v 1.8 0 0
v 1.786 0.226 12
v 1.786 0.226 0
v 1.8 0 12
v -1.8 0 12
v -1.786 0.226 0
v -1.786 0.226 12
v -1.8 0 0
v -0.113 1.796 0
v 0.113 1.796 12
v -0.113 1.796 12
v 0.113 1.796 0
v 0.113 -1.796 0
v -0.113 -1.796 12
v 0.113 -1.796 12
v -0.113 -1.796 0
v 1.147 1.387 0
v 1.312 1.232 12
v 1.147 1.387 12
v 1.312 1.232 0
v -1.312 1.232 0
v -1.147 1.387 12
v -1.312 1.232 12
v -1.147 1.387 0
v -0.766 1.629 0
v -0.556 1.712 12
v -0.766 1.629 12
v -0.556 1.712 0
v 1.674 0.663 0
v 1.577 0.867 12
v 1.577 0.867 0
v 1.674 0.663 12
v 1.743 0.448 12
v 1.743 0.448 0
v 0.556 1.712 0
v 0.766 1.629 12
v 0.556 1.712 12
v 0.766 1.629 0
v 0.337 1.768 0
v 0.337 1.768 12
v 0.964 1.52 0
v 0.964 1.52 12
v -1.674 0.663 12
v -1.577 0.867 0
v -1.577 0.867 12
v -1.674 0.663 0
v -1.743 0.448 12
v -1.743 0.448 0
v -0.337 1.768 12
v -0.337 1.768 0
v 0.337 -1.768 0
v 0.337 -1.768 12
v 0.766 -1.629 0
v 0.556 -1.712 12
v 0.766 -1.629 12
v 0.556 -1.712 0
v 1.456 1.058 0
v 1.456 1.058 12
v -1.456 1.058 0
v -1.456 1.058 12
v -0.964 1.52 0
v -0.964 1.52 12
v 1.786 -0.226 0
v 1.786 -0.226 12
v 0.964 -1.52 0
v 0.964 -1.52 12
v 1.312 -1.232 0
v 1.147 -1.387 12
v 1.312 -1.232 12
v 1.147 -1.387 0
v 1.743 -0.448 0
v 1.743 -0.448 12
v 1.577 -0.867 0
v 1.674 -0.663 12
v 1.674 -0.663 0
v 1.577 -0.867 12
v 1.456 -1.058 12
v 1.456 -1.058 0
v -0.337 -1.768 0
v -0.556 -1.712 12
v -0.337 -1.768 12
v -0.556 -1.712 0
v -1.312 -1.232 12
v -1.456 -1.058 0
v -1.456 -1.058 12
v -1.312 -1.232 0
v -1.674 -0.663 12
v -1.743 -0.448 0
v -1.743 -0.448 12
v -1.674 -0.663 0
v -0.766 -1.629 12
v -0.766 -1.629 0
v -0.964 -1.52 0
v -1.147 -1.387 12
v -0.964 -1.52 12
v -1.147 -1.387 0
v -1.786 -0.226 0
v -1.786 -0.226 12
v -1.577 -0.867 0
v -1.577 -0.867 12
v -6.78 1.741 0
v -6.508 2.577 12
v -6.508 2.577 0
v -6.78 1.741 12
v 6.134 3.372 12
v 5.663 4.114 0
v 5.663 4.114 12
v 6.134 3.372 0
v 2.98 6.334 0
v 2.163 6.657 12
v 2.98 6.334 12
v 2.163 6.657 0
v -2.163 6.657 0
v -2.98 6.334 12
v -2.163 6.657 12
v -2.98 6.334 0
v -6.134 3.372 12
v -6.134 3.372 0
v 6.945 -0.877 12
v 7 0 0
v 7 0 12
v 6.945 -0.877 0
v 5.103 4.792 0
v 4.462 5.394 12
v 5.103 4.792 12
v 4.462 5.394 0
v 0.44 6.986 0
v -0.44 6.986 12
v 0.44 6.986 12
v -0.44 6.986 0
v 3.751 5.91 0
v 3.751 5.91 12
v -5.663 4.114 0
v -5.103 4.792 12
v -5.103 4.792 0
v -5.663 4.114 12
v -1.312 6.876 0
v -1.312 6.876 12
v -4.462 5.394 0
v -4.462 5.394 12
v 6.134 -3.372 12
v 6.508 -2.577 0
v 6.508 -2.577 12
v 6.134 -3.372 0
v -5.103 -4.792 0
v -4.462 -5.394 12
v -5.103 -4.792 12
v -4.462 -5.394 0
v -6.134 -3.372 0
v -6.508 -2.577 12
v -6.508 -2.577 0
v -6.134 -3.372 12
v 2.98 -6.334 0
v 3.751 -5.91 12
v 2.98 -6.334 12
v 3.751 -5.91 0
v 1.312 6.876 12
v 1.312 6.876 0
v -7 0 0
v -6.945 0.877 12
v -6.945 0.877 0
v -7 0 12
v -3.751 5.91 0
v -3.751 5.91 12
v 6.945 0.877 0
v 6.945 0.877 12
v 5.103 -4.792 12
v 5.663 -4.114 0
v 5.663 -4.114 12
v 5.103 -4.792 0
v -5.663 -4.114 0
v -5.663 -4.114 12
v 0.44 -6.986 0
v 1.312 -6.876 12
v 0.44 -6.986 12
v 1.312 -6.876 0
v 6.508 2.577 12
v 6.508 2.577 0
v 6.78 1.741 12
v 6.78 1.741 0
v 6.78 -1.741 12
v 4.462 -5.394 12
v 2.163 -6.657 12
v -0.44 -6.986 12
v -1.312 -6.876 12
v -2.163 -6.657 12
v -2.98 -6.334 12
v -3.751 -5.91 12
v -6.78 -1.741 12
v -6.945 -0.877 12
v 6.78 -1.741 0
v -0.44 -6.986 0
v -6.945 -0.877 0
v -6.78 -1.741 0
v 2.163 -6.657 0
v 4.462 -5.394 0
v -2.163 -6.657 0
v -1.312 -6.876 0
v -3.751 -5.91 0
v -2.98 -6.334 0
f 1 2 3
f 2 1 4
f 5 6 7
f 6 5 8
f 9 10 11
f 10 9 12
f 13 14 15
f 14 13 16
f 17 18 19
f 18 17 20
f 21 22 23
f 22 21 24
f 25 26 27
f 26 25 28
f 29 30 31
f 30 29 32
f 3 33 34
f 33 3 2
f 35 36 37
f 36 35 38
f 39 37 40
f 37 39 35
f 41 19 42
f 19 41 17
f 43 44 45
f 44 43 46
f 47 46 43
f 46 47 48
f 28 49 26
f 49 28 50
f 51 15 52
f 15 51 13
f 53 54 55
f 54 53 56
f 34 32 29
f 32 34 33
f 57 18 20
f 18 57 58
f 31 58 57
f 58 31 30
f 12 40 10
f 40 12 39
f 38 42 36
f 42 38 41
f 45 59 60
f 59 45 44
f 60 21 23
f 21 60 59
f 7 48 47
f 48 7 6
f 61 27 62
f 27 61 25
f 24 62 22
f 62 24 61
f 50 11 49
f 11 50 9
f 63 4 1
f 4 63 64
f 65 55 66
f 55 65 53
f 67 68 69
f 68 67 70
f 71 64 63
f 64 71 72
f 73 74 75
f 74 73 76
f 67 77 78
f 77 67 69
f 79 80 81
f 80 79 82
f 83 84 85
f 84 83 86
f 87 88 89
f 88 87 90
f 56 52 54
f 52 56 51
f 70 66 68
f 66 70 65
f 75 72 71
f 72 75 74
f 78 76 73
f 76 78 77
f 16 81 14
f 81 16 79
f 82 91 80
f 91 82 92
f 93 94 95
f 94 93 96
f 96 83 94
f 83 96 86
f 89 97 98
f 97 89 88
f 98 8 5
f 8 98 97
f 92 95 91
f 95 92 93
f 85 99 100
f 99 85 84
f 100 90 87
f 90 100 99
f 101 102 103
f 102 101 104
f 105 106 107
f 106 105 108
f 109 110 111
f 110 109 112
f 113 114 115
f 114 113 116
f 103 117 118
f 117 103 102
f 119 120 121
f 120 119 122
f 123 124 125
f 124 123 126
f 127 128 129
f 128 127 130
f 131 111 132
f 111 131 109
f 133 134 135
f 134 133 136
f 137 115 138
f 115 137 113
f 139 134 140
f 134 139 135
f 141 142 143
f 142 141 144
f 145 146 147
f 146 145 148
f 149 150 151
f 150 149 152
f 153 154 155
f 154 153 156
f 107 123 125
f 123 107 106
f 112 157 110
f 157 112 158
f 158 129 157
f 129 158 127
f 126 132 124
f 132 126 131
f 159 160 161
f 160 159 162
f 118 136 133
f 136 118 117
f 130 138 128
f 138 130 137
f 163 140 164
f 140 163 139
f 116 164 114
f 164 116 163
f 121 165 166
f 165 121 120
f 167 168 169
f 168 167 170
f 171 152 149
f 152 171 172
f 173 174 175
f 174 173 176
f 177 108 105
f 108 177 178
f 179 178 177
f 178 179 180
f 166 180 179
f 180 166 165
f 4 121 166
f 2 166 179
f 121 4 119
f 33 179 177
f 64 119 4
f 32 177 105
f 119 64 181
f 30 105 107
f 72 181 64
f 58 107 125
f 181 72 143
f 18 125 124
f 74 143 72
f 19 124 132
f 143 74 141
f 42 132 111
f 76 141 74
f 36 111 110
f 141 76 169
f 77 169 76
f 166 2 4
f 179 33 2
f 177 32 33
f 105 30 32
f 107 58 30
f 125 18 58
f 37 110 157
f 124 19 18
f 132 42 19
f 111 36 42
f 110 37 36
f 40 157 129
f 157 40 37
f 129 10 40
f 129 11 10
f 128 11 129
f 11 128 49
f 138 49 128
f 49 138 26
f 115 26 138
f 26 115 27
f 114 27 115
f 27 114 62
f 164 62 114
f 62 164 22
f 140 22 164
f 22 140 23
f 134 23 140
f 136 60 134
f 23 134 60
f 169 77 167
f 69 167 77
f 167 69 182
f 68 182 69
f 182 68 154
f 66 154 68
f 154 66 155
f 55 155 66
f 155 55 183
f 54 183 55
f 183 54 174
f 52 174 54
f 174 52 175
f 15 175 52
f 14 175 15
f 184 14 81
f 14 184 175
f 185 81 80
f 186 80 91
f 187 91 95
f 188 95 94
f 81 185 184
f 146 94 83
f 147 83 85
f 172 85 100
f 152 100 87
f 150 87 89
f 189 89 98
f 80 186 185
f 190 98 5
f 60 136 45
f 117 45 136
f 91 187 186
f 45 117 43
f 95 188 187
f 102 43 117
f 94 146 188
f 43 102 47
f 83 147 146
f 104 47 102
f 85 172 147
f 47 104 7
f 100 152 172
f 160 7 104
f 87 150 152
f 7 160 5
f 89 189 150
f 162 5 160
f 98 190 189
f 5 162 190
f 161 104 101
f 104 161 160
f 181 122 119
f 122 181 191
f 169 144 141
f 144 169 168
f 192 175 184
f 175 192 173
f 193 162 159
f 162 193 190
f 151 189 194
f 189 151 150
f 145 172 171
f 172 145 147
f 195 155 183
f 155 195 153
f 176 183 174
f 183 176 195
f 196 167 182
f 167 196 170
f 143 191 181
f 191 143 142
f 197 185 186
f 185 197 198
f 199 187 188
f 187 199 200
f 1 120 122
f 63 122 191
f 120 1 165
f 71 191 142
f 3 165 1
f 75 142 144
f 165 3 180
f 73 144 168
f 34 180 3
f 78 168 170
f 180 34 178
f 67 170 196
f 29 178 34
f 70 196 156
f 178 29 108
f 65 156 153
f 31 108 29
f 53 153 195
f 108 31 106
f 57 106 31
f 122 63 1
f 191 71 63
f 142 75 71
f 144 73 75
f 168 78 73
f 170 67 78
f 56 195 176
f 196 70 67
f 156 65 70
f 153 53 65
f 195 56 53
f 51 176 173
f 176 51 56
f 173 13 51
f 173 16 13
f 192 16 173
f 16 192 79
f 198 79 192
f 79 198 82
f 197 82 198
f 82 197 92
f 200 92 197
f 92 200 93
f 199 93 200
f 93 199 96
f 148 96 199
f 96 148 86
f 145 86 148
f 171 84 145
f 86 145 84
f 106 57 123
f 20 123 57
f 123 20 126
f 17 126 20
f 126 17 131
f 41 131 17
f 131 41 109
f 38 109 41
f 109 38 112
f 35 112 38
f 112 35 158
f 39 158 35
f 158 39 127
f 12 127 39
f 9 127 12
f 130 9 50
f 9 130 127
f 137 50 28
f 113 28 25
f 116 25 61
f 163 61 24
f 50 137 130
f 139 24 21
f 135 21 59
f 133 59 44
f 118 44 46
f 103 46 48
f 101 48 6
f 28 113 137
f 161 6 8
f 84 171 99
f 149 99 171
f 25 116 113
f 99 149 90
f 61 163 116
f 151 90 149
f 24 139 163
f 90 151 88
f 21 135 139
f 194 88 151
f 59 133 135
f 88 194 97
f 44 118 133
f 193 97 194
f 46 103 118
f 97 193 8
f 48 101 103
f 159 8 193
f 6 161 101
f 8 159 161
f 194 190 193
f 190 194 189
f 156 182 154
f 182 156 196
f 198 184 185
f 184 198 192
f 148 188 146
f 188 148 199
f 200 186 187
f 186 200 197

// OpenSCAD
$fn = 50;


difference() {
	union() {
		cylinder(h = 12, r = 7.0000000000);
	}
	union() {
		translate(v = [0, 0, -100]) {
			cylinder(h = 200, r = 1.8000000000);
		}
		translate(v = [0, 0, -100]) {
			cylinder(h = 200, r = 1.8000000000);
		}
	}
}
